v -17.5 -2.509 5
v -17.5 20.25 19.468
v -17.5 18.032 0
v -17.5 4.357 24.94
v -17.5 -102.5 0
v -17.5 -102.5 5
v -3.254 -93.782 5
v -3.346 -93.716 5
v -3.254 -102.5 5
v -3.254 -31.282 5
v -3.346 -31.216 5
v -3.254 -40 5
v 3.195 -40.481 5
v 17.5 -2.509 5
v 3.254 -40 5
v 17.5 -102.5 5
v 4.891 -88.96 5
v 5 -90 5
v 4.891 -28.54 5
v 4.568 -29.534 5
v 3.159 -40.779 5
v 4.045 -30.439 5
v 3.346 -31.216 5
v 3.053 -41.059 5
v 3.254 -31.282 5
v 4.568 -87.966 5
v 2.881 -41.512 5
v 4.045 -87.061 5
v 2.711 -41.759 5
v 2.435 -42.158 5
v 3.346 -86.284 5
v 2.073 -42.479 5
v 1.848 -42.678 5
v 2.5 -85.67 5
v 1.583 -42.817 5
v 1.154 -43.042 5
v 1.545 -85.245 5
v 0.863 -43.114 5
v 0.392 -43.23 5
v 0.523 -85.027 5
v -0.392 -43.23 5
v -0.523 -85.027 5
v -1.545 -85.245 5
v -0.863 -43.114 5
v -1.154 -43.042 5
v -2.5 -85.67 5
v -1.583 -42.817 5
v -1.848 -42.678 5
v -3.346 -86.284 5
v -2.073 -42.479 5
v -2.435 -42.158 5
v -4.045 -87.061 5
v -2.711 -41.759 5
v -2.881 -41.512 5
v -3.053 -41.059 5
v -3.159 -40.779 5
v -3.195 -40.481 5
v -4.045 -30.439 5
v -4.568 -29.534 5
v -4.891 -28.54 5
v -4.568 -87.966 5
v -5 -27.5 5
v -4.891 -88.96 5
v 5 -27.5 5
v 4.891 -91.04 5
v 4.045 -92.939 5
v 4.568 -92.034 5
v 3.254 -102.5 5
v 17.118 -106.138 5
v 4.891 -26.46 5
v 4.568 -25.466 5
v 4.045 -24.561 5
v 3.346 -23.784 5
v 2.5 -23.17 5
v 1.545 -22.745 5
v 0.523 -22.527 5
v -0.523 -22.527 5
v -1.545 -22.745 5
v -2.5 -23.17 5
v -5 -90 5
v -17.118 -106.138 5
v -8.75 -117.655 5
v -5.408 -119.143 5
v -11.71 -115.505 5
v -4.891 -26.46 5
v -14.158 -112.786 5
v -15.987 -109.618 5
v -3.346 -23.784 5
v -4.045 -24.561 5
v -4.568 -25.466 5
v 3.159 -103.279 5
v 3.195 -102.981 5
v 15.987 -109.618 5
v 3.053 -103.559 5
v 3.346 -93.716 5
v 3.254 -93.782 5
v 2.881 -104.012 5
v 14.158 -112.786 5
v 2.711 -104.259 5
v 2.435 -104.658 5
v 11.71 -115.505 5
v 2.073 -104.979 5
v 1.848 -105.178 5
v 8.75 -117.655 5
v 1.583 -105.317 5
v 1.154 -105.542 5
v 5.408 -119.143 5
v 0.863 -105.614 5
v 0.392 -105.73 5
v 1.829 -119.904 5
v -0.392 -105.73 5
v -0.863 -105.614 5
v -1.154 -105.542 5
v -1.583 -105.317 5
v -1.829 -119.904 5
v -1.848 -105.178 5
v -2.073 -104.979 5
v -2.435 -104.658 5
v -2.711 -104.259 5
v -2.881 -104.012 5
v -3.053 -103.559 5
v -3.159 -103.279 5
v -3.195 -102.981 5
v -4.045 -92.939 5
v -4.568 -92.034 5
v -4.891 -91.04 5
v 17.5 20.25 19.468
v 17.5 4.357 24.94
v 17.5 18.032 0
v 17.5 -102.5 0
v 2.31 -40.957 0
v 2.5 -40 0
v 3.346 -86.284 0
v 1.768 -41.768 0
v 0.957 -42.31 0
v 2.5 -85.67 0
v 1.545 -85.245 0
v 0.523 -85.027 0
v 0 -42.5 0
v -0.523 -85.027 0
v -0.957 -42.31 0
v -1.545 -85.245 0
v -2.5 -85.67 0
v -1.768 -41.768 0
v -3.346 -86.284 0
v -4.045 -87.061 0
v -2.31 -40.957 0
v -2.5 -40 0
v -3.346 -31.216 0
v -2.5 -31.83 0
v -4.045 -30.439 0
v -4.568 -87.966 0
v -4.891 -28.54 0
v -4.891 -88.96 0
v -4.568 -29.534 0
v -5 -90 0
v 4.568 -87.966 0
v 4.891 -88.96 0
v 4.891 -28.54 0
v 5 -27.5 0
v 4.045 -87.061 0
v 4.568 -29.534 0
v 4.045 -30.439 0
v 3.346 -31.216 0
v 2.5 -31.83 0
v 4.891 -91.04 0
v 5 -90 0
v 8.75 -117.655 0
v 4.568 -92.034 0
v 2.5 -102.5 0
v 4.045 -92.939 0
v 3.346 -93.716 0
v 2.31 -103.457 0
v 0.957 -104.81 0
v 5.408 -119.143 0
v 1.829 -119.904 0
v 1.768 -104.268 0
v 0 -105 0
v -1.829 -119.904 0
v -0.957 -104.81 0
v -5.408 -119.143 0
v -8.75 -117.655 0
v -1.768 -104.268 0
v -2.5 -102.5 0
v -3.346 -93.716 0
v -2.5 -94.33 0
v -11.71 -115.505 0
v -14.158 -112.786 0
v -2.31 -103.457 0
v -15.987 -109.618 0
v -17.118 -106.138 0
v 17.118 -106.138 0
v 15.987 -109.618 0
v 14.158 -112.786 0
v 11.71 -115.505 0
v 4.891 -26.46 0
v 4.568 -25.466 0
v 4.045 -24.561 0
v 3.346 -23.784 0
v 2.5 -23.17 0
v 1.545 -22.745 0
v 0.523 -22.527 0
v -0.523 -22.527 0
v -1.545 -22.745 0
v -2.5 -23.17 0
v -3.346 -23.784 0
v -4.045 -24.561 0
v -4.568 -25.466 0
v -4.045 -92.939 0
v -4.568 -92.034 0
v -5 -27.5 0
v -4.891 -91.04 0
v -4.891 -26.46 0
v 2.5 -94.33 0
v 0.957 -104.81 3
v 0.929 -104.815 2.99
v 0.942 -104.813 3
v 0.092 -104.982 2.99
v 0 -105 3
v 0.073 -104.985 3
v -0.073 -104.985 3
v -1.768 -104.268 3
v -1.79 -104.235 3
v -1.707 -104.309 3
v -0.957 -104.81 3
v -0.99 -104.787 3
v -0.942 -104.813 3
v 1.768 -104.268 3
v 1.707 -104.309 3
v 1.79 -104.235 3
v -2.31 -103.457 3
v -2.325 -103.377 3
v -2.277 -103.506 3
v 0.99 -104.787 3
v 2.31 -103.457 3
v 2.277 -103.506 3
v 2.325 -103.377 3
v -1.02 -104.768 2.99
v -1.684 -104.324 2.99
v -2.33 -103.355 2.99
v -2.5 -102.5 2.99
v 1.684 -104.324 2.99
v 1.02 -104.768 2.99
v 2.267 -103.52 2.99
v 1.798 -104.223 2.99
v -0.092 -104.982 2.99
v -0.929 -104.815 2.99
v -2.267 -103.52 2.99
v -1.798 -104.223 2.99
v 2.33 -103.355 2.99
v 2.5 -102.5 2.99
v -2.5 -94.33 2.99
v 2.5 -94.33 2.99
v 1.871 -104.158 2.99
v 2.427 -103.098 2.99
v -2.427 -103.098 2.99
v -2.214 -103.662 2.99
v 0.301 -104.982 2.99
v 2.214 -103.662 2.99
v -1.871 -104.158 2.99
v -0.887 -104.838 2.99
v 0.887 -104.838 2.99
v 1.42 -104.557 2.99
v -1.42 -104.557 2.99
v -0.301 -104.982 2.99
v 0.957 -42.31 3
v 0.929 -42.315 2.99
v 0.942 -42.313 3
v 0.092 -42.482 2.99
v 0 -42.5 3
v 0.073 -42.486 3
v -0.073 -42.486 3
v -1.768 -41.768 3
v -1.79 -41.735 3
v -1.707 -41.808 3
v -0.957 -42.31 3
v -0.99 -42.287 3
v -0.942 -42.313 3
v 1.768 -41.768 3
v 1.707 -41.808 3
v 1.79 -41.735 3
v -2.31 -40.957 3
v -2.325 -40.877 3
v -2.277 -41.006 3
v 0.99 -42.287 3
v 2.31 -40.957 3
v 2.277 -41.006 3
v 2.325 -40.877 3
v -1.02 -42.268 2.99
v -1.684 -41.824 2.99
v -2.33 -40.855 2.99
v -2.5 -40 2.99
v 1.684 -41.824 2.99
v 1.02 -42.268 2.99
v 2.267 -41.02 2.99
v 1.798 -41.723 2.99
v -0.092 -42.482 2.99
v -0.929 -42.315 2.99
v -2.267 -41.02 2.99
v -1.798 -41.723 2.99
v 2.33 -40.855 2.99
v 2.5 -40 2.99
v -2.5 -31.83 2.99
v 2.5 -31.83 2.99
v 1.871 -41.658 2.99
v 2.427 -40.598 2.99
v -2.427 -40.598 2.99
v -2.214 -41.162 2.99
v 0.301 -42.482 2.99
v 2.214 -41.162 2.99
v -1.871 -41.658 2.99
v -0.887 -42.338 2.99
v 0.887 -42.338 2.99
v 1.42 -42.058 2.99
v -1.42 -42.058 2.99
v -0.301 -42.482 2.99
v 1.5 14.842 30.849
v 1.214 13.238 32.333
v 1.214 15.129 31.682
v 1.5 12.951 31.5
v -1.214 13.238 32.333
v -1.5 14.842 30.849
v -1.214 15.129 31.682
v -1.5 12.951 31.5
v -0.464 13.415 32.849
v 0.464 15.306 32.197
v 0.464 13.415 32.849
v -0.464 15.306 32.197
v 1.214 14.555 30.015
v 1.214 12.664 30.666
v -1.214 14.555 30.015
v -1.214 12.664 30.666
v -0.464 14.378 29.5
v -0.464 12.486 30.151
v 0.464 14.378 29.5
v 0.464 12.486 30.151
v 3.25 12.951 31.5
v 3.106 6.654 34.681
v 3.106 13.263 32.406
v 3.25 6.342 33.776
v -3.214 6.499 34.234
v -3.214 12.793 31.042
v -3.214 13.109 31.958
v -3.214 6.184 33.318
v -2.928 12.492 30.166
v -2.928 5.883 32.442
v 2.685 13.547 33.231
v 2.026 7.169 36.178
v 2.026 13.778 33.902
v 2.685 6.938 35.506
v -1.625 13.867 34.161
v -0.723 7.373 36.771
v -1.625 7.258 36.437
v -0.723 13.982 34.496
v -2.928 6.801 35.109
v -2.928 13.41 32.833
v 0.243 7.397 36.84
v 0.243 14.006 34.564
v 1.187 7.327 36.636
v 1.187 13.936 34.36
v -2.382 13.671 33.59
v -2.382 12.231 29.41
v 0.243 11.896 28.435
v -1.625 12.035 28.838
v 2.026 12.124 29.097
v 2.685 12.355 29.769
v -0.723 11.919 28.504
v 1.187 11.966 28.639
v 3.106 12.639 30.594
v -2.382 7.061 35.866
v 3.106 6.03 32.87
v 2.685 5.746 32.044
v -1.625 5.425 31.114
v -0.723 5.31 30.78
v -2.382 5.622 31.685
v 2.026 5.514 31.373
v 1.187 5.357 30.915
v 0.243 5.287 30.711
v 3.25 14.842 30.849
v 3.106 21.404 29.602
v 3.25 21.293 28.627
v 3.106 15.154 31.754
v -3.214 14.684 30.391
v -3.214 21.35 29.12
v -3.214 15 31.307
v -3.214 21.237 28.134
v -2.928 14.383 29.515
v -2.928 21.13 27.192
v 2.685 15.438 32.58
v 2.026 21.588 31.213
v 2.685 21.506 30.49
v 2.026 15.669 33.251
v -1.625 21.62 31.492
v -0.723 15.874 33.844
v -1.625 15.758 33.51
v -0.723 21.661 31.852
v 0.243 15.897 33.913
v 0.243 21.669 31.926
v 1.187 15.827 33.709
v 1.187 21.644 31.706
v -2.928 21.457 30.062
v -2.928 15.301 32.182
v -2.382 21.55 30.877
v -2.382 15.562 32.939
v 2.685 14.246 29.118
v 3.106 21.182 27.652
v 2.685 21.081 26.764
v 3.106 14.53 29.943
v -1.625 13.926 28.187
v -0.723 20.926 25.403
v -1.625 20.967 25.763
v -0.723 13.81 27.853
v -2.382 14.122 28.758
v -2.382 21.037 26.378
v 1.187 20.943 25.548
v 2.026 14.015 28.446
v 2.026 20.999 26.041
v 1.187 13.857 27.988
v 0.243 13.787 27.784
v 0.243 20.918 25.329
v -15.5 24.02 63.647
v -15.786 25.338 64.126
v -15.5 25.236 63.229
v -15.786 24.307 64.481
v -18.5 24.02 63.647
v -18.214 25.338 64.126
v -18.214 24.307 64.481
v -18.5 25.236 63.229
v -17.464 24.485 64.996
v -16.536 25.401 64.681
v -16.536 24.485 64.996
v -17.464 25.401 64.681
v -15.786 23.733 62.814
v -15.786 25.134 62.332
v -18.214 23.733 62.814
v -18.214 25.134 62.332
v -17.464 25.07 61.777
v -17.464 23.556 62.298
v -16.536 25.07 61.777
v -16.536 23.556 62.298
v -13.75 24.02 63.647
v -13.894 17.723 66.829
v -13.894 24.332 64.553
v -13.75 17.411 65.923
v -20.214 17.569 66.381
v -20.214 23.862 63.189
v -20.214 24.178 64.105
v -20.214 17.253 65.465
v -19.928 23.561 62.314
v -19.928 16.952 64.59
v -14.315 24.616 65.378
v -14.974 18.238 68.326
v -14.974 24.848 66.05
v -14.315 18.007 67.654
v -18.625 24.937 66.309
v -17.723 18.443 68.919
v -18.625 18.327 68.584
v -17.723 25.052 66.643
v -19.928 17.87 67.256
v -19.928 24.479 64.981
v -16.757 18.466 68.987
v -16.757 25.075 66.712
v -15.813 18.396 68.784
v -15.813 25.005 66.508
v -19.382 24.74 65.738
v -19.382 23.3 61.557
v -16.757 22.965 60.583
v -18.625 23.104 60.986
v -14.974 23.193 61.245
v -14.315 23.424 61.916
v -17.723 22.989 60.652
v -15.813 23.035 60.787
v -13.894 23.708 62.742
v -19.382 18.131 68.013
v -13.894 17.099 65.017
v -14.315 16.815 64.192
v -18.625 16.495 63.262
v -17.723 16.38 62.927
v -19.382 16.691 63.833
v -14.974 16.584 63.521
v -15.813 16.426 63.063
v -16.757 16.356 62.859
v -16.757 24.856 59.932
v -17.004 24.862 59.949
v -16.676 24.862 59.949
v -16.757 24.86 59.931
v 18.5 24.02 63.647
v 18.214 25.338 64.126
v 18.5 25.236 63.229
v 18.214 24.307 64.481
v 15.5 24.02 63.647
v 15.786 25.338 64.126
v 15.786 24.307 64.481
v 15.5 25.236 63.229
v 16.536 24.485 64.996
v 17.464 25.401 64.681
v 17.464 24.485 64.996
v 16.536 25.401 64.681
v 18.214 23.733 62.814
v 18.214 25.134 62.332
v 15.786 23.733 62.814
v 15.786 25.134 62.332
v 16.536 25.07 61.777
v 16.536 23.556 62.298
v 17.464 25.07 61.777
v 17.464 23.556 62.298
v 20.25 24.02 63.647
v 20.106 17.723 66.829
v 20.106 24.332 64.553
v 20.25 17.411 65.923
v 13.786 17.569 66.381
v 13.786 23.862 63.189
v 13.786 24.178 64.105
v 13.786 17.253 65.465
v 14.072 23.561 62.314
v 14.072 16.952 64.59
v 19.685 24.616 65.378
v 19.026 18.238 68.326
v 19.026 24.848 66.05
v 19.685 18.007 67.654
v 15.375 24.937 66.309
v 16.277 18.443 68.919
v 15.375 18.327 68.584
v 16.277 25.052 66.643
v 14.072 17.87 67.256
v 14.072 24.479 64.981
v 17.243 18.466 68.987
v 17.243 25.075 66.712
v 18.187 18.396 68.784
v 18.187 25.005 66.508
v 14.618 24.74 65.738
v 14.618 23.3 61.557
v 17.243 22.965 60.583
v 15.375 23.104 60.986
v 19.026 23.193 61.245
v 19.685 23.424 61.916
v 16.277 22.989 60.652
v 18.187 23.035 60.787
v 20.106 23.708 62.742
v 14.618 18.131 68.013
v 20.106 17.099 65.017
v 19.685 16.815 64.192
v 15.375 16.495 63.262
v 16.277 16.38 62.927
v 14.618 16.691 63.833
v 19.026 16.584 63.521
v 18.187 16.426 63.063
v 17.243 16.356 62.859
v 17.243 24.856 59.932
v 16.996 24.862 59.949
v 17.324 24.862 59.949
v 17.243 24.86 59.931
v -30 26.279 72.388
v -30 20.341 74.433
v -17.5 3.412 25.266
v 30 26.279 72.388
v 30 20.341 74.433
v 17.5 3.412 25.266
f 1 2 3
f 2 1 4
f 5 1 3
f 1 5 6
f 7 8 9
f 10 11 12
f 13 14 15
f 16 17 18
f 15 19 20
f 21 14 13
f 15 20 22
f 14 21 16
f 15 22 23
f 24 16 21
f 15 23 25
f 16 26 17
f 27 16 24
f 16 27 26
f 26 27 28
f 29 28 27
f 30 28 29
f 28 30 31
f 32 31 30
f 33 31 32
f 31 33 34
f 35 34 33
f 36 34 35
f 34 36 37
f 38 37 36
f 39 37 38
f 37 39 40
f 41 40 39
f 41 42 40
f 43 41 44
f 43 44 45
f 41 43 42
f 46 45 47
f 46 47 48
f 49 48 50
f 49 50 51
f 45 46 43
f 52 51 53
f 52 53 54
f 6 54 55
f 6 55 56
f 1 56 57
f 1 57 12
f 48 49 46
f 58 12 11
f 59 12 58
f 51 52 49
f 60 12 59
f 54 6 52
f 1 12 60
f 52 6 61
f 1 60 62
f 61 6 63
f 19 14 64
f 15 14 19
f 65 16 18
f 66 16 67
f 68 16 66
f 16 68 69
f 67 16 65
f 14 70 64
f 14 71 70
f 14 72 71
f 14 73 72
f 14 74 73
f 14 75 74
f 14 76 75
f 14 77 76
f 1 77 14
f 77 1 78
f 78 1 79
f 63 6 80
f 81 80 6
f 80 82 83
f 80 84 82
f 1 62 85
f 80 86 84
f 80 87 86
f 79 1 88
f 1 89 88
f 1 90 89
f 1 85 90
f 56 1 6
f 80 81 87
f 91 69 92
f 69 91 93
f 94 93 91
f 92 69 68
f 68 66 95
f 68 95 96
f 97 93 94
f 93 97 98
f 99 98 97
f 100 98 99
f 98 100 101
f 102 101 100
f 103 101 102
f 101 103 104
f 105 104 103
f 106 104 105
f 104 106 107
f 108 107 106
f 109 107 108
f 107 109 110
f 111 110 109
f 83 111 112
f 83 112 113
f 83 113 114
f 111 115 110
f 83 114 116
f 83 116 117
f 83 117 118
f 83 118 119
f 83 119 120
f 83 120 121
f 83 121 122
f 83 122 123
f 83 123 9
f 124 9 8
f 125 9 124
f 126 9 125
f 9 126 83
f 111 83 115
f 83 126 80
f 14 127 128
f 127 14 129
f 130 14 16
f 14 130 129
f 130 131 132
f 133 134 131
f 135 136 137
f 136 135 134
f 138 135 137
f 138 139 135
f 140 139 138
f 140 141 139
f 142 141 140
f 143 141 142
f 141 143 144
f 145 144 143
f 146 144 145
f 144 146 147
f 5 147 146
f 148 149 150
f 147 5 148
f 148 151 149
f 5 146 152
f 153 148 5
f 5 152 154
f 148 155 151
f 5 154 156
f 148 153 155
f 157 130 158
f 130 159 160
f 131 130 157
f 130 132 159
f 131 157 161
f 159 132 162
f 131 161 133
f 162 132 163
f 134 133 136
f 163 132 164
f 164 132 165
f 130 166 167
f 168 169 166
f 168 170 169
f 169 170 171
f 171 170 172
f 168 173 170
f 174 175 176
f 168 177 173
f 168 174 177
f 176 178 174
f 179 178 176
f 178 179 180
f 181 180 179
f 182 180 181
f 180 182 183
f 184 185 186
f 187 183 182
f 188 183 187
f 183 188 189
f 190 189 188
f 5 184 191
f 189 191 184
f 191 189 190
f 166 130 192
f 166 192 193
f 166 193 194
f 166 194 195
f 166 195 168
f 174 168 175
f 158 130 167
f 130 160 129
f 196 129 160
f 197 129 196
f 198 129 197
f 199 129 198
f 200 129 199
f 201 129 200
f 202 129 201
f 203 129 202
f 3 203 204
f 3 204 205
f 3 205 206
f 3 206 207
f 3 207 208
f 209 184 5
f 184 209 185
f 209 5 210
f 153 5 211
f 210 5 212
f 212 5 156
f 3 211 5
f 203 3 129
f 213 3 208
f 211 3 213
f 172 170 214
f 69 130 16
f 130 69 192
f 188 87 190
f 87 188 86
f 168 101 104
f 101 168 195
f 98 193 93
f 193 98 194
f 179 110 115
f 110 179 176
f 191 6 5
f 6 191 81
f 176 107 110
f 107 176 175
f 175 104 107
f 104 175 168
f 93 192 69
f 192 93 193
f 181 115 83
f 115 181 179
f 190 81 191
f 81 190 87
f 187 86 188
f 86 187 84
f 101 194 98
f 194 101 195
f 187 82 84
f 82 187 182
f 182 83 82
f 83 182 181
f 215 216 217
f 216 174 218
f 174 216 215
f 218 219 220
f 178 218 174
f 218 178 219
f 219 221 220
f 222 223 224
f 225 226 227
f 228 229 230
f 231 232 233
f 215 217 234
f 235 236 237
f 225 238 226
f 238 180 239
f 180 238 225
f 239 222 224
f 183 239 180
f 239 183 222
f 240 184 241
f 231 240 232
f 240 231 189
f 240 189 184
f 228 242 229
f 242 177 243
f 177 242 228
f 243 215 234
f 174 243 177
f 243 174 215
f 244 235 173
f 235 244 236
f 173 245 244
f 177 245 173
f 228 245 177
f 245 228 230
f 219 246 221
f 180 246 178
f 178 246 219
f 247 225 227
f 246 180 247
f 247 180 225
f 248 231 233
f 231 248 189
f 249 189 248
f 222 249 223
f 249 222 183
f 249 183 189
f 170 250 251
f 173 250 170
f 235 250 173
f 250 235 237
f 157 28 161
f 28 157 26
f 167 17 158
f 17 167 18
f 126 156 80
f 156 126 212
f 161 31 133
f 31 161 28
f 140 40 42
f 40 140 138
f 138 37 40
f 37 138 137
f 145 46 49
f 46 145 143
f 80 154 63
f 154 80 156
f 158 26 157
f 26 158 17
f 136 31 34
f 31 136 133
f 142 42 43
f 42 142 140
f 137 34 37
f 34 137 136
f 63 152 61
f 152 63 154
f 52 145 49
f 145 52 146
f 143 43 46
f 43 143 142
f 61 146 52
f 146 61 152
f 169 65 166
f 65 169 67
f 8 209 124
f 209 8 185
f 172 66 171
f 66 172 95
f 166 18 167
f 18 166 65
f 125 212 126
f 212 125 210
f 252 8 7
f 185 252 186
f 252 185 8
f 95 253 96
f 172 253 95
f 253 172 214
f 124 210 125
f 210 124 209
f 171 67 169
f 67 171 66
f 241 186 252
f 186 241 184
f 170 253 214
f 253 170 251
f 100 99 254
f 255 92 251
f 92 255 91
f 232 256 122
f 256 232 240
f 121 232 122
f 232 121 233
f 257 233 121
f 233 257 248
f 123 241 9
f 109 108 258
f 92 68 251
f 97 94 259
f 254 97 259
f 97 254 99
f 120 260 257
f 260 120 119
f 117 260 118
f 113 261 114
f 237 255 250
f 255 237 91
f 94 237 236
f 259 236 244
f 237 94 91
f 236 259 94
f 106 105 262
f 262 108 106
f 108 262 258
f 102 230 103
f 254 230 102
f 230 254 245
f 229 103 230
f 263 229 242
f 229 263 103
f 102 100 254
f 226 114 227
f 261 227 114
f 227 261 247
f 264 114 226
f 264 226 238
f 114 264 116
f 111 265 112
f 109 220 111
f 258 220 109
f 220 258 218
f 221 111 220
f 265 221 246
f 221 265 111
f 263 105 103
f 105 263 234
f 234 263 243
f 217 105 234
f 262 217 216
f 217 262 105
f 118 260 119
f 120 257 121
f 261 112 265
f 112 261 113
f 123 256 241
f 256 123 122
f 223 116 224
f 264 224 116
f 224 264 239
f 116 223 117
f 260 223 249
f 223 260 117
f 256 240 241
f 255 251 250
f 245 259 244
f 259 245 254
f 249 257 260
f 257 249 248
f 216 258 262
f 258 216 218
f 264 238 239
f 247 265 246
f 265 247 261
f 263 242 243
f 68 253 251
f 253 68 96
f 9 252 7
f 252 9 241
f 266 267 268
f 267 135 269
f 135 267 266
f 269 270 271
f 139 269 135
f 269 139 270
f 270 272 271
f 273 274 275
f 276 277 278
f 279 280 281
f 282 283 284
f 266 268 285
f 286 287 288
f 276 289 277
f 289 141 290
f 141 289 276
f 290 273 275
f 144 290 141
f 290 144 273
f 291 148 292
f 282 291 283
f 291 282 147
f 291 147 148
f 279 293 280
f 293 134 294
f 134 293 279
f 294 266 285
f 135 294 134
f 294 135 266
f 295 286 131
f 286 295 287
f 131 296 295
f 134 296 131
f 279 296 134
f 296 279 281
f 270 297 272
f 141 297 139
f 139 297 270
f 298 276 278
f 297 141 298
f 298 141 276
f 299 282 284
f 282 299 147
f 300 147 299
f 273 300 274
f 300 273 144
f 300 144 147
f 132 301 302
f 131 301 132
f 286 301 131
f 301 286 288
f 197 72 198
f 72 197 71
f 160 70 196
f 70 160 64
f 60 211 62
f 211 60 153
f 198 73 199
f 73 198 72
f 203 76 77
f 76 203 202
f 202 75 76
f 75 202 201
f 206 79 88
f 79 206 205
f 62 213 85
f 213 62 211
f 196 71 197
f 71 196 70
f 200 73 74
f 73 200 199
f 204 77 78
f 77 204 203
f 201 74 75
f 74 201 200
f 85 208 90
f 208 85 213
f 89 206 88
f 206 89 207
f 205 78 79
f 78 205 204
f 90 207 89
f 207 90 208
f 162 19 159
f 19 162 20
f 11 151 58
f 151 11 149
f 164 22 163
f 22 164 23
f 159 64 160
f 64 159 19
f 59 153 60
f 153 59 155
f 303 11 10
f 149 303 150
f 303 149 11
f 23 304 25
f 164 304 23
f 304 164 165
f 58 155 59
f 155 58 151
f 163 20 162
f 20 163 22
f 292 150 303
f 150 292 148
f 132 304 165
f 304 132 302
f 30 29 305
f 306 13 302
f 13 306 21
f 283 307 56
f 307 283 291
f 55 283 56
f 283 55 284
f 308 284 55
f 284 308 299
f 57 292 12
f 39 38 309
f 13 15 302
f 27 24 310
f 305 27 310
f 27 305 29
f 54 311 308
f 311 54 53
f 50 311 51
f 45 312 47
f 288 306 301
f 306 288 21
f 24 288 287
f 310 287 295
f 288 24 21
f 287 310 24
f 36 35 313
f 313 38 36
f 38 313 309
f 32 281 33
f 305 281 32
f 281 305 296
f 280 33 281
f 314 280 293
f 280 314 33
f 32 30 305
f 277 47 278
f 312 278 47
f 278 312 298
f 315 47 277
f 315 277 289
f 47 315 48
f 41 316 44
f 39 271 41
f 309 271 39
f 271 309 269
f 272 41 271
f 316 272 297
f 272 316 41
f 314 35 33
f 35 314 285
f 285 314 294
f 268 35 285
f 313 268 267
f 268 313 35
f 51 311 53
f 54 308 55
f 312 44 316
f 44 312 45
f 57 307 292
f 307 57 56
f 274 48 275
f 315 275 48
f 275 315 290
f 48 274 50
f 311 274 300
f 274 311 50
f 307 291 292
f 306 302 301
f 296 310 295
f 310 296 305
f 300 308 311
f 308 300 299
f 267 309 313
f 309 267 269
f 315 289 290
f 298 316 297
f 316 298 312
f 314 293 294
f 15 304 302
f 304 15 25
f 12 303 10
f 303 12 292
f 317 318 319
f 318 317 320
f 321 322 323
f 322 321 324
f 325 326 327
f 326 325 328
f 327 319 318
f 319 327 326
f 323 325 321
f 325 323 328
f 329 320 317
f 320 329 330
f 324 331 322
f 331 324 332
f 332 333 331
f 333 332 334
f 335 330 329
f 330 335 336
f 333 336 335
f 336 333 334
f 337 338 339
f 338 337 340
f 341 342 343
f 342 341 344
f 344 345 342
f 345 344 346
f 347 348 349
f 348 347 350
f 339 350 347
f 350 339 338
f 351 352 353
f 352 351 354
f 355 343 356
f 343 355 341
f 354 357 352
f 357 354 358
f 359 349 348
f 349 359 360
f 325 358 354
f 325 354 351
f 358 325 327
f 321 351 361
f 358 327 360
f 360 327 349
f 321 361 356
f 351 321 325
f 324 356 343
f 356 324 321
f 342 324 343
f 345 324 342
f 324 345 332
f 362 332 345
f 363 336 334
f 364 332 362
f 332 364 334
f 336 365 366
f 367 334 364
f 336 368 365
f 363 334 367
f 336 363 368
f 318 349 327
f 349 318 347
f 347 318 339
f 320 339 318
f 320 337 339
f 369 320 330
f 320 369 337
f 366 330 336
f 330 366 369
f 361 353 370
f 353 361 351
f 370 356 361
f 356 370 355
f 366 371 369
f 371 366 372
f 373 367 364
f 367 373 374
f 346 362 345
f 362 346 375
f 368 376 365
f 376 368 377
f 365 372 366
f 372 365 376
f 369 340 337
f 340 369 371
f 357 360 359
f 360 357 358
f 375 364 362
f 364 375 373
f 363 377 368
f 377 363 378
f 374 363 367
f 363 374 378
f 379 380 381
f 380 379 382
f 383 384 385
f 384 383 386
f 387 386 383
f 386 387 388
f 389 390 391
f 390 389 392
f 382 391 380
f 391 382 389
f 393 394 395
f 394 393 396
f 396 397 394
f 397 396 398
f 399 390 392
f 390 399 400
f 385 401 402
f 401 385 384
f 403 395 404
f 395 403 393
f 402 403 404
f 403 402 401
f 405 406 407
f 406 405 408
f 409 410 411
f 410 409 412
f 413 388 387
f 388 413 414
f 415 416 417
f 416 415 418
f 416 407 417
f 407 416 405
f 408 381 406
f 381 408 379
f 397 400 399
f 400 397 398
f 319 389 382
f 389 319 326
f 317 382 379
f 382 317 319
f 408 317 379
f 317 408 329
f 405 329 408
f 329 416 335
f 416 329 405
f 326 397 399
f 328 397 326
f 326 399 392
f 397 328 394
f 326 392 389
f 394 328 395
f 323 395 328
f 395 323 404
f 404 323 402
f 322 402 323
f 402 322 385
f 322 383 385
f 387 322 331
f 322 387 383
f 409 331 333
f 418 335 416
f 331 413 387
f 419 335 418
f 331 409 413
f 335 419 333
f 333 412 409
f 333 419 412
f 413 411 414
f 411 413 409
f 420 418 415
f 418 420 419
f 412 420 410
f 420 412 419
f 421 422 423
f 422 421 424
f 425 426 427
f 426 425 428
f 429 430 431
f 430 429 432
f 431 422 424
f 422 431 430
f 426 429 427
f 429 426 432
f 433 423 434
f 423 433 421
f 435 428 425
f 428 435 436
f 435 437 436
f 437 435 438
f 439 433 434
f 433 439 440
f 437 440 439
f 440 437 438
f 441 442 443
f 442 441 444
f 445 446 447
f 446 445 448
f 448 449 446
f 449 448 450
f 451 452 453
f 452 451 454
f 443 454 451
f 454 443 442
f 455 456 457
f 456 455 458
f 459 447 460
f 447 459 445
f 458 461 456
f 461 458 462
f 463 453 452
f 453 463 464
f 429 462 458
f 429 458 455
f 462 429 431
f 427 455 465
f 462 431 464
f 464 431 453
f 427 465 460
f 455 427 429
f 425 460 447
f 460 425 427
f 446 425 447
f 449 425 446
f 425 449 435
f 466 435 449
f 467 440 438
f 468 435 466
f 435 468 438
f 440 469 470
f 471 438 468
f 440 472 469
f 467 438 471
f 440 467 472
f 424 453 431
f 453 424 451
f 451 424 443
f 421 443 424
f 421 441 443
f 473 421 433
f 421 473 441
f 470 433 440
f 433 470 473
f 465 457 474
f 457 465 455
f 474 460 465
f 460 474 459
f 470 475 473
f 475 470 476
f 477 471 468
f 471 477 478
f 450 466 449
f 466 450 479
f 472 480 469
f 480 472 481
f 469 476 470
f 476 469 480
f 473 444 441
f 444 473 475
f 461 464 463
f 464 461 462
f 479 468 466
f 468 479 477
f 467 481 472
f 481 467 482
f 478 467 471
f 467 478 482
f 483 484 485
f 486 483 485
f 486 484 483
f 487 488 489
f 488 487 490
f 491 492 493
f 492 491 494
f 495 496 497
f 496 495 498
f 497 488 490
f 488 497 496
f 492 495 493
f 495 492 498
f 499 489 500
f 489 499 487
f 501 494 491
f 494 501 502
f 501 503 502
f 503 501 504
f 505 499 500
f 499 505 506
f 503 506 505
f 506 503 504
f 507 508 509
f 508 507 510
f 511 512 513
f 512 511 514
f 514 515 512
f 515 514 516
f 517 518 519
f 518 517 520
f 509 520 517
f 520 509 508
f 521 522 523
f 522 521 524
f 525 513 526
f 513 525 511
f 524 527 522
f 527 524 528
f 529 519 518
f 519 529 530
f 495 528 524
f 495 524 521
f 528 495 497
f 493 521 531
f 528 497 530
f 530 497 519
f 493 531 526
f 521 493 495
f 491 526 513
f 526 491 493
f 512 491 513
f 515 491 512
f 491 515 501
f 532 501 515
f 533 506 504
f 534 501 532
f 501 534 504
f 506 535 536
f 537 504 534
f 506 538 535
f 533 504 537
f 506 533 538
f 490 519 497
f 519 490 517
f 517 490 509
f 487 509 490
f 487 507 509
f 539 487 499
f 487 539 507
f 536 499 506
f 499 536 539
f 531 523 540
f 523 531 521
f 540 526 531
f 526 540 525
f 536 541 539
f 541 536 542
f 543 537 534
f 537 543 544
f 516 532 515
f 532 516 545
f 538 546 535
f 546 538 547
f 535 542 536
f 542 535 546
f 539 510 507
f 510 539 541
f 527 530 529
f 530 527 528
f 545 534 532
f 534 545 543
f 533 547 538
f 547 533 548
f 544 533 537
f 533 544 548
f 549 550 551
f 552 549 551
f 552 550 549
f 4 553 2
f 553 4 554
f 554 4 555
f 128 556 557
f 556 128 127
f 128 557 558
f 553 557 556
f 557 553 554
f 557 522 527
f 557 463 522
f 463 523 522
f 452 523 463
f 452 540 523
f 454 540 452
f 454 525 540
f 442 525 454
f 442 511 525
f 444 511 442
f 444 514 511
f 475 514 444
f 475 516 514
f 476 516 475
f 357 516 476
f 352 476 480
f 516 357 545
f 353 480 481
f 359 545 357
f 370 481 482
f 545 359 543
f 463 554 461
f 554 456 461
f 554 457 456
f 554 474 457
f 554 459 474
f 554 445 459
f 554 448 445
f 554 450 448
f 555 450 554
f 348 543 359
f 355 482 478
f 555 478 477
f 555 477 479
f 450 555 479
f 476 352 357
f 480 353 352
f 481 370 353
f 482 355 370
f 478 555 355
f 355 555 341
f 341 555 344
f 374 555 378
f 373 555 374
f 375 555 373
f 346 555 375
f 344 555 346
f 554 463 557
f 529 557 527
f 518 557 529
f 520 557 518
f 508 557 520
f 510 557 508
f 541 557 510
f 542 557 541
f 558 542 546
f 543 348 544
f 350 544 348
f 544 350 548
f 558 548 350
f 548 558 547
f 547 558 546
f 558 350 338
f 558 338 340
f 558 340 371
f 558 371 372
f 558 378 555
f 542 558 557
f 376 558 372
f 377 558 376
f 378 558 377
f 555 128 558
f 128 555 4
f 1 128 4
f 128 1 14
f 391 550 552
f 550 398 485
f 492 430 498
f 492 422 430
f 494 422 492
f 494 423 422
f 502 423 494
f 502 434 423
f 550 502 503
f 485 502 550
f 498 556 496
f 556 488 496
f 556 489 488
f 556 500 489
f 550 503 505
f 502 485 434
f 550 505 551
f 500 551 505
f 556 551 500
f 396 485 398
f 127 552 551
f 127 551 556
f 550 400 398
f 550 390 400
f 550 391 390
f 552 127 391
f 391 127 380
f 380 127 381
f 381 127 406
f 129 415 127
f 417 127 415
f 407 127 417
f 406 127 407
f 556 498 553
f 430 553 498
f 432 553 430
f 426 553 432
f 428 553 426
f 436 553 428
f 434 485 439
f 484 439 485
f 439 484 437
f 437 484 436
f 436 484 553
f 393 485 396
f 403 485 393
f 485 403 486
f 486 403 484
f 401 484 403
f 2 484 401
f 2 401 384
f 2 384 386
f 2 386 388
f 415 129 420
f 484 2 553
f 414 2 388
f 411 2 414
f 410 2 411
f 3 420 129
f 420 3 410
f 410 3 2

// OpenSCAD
$fs = 1;

mountGap = 34; 
mountH = 34;
mountPoleR = 6.5/2;
mountPoleH = 7; 
screwR = 3/2;

footW1 = 35;
footW2 = 60;
footL = 52;
footH = 5;

neckL = 25;
backL = 120;
backH = 5;

footAng = 19;
baseAng = footAng - 12.5;
toeH = 6.25;

// Back
backCubeL = backL-footW1/2;
difference() {
    union() {
        translate([-footW1/2, -backCubeL,0])
            cube([footW1, backCubeL, backH]);
        translate([0, -backCubeL,0])
            cylinder(d=footW1, h=backH);
    }

    translate([0,-backCubeL,backH-2]) keyhole_8g_woodscrew(h=50);
    translate([0,-40,backH-2]) keyhole_8g_woodscrew(h=50);
}

intersection() {
    // Shear off bottom of neck and foot
    rotate([-baseAng,0,0])
        translate([-500,-1000 - (footH - toeH) + sin (footAng - baseAng)*(neckL+footL),-500])
        cube(size=1000);
    translate([0,0,500]) cube(size=1000, center=true);
    
    rotate([90-footAng,0,0]) translate([0,neckL+footL/2,0]) {
        // Neck
        translate([-footW1/2,-neckL-footL/2,-100])
            cube([footW1, neckL, footH -1 + 100]);

        // Foot
        difference() {
            translate([0,0,-100]) linear_extrude(height=footH + 100)
                polygon([
                    [-footW1/2, -footL/2], [footW1/2, -footL/2],
                    [footW2/2, footL/2], [-footW2/2, footL/2] ]);

            translate([0, -mountH/2, footH+.01]) footHole();
            translate([-mountGap/2, mountH/2, footH+.01]) footHole();
            translate([mountGap/2, mountH/2, footH+.01]) footHole();

        }
    }
}

module footHole() {
    scale([1,1,-1]) {
        cylinder(r=screwR, h=130);
        cylinder(r=mountPoleR, h=mountPoleH);
        translate([0,0,mountPoleH + 2]) cylinder(r=mountPoleR, h=130);
    }
}

// Keyhole for an 8g woodscrew
// The hole will be in -ve Z and the countersink in +ve Z
module keyhole_8g_woodscrew(h) {
    d1 = 5;
    d2 = 10;
    gap = 5;

    // Dimensions of countersink
    d1CS = 8;
    hCS = 4;
    
    spread = (d1+d2)/2+gap;

    // Main hole
    scale([1,1,-1]) {
        cylinder(d=d1, h=h);
        translate([0,spread,-hCS]) cylinder(d=d2, h=h+hCS);
        translate([-d1/2,0,0]) cube([d1,spread,h]);
    }
    
    // Countersink
    translate([0,0,-.01]) cylinder(d1=d1, d2=d1CS, h=hCS);
    translate([0,0,hCS-.01]) rotate([-90,0,0]) linear_extrude(height=spread)
        polygon([[-d1/2,hCS], [d1/2,hCS], [d1CS/2,0], [-d1CS/2,0]]);
    
}
